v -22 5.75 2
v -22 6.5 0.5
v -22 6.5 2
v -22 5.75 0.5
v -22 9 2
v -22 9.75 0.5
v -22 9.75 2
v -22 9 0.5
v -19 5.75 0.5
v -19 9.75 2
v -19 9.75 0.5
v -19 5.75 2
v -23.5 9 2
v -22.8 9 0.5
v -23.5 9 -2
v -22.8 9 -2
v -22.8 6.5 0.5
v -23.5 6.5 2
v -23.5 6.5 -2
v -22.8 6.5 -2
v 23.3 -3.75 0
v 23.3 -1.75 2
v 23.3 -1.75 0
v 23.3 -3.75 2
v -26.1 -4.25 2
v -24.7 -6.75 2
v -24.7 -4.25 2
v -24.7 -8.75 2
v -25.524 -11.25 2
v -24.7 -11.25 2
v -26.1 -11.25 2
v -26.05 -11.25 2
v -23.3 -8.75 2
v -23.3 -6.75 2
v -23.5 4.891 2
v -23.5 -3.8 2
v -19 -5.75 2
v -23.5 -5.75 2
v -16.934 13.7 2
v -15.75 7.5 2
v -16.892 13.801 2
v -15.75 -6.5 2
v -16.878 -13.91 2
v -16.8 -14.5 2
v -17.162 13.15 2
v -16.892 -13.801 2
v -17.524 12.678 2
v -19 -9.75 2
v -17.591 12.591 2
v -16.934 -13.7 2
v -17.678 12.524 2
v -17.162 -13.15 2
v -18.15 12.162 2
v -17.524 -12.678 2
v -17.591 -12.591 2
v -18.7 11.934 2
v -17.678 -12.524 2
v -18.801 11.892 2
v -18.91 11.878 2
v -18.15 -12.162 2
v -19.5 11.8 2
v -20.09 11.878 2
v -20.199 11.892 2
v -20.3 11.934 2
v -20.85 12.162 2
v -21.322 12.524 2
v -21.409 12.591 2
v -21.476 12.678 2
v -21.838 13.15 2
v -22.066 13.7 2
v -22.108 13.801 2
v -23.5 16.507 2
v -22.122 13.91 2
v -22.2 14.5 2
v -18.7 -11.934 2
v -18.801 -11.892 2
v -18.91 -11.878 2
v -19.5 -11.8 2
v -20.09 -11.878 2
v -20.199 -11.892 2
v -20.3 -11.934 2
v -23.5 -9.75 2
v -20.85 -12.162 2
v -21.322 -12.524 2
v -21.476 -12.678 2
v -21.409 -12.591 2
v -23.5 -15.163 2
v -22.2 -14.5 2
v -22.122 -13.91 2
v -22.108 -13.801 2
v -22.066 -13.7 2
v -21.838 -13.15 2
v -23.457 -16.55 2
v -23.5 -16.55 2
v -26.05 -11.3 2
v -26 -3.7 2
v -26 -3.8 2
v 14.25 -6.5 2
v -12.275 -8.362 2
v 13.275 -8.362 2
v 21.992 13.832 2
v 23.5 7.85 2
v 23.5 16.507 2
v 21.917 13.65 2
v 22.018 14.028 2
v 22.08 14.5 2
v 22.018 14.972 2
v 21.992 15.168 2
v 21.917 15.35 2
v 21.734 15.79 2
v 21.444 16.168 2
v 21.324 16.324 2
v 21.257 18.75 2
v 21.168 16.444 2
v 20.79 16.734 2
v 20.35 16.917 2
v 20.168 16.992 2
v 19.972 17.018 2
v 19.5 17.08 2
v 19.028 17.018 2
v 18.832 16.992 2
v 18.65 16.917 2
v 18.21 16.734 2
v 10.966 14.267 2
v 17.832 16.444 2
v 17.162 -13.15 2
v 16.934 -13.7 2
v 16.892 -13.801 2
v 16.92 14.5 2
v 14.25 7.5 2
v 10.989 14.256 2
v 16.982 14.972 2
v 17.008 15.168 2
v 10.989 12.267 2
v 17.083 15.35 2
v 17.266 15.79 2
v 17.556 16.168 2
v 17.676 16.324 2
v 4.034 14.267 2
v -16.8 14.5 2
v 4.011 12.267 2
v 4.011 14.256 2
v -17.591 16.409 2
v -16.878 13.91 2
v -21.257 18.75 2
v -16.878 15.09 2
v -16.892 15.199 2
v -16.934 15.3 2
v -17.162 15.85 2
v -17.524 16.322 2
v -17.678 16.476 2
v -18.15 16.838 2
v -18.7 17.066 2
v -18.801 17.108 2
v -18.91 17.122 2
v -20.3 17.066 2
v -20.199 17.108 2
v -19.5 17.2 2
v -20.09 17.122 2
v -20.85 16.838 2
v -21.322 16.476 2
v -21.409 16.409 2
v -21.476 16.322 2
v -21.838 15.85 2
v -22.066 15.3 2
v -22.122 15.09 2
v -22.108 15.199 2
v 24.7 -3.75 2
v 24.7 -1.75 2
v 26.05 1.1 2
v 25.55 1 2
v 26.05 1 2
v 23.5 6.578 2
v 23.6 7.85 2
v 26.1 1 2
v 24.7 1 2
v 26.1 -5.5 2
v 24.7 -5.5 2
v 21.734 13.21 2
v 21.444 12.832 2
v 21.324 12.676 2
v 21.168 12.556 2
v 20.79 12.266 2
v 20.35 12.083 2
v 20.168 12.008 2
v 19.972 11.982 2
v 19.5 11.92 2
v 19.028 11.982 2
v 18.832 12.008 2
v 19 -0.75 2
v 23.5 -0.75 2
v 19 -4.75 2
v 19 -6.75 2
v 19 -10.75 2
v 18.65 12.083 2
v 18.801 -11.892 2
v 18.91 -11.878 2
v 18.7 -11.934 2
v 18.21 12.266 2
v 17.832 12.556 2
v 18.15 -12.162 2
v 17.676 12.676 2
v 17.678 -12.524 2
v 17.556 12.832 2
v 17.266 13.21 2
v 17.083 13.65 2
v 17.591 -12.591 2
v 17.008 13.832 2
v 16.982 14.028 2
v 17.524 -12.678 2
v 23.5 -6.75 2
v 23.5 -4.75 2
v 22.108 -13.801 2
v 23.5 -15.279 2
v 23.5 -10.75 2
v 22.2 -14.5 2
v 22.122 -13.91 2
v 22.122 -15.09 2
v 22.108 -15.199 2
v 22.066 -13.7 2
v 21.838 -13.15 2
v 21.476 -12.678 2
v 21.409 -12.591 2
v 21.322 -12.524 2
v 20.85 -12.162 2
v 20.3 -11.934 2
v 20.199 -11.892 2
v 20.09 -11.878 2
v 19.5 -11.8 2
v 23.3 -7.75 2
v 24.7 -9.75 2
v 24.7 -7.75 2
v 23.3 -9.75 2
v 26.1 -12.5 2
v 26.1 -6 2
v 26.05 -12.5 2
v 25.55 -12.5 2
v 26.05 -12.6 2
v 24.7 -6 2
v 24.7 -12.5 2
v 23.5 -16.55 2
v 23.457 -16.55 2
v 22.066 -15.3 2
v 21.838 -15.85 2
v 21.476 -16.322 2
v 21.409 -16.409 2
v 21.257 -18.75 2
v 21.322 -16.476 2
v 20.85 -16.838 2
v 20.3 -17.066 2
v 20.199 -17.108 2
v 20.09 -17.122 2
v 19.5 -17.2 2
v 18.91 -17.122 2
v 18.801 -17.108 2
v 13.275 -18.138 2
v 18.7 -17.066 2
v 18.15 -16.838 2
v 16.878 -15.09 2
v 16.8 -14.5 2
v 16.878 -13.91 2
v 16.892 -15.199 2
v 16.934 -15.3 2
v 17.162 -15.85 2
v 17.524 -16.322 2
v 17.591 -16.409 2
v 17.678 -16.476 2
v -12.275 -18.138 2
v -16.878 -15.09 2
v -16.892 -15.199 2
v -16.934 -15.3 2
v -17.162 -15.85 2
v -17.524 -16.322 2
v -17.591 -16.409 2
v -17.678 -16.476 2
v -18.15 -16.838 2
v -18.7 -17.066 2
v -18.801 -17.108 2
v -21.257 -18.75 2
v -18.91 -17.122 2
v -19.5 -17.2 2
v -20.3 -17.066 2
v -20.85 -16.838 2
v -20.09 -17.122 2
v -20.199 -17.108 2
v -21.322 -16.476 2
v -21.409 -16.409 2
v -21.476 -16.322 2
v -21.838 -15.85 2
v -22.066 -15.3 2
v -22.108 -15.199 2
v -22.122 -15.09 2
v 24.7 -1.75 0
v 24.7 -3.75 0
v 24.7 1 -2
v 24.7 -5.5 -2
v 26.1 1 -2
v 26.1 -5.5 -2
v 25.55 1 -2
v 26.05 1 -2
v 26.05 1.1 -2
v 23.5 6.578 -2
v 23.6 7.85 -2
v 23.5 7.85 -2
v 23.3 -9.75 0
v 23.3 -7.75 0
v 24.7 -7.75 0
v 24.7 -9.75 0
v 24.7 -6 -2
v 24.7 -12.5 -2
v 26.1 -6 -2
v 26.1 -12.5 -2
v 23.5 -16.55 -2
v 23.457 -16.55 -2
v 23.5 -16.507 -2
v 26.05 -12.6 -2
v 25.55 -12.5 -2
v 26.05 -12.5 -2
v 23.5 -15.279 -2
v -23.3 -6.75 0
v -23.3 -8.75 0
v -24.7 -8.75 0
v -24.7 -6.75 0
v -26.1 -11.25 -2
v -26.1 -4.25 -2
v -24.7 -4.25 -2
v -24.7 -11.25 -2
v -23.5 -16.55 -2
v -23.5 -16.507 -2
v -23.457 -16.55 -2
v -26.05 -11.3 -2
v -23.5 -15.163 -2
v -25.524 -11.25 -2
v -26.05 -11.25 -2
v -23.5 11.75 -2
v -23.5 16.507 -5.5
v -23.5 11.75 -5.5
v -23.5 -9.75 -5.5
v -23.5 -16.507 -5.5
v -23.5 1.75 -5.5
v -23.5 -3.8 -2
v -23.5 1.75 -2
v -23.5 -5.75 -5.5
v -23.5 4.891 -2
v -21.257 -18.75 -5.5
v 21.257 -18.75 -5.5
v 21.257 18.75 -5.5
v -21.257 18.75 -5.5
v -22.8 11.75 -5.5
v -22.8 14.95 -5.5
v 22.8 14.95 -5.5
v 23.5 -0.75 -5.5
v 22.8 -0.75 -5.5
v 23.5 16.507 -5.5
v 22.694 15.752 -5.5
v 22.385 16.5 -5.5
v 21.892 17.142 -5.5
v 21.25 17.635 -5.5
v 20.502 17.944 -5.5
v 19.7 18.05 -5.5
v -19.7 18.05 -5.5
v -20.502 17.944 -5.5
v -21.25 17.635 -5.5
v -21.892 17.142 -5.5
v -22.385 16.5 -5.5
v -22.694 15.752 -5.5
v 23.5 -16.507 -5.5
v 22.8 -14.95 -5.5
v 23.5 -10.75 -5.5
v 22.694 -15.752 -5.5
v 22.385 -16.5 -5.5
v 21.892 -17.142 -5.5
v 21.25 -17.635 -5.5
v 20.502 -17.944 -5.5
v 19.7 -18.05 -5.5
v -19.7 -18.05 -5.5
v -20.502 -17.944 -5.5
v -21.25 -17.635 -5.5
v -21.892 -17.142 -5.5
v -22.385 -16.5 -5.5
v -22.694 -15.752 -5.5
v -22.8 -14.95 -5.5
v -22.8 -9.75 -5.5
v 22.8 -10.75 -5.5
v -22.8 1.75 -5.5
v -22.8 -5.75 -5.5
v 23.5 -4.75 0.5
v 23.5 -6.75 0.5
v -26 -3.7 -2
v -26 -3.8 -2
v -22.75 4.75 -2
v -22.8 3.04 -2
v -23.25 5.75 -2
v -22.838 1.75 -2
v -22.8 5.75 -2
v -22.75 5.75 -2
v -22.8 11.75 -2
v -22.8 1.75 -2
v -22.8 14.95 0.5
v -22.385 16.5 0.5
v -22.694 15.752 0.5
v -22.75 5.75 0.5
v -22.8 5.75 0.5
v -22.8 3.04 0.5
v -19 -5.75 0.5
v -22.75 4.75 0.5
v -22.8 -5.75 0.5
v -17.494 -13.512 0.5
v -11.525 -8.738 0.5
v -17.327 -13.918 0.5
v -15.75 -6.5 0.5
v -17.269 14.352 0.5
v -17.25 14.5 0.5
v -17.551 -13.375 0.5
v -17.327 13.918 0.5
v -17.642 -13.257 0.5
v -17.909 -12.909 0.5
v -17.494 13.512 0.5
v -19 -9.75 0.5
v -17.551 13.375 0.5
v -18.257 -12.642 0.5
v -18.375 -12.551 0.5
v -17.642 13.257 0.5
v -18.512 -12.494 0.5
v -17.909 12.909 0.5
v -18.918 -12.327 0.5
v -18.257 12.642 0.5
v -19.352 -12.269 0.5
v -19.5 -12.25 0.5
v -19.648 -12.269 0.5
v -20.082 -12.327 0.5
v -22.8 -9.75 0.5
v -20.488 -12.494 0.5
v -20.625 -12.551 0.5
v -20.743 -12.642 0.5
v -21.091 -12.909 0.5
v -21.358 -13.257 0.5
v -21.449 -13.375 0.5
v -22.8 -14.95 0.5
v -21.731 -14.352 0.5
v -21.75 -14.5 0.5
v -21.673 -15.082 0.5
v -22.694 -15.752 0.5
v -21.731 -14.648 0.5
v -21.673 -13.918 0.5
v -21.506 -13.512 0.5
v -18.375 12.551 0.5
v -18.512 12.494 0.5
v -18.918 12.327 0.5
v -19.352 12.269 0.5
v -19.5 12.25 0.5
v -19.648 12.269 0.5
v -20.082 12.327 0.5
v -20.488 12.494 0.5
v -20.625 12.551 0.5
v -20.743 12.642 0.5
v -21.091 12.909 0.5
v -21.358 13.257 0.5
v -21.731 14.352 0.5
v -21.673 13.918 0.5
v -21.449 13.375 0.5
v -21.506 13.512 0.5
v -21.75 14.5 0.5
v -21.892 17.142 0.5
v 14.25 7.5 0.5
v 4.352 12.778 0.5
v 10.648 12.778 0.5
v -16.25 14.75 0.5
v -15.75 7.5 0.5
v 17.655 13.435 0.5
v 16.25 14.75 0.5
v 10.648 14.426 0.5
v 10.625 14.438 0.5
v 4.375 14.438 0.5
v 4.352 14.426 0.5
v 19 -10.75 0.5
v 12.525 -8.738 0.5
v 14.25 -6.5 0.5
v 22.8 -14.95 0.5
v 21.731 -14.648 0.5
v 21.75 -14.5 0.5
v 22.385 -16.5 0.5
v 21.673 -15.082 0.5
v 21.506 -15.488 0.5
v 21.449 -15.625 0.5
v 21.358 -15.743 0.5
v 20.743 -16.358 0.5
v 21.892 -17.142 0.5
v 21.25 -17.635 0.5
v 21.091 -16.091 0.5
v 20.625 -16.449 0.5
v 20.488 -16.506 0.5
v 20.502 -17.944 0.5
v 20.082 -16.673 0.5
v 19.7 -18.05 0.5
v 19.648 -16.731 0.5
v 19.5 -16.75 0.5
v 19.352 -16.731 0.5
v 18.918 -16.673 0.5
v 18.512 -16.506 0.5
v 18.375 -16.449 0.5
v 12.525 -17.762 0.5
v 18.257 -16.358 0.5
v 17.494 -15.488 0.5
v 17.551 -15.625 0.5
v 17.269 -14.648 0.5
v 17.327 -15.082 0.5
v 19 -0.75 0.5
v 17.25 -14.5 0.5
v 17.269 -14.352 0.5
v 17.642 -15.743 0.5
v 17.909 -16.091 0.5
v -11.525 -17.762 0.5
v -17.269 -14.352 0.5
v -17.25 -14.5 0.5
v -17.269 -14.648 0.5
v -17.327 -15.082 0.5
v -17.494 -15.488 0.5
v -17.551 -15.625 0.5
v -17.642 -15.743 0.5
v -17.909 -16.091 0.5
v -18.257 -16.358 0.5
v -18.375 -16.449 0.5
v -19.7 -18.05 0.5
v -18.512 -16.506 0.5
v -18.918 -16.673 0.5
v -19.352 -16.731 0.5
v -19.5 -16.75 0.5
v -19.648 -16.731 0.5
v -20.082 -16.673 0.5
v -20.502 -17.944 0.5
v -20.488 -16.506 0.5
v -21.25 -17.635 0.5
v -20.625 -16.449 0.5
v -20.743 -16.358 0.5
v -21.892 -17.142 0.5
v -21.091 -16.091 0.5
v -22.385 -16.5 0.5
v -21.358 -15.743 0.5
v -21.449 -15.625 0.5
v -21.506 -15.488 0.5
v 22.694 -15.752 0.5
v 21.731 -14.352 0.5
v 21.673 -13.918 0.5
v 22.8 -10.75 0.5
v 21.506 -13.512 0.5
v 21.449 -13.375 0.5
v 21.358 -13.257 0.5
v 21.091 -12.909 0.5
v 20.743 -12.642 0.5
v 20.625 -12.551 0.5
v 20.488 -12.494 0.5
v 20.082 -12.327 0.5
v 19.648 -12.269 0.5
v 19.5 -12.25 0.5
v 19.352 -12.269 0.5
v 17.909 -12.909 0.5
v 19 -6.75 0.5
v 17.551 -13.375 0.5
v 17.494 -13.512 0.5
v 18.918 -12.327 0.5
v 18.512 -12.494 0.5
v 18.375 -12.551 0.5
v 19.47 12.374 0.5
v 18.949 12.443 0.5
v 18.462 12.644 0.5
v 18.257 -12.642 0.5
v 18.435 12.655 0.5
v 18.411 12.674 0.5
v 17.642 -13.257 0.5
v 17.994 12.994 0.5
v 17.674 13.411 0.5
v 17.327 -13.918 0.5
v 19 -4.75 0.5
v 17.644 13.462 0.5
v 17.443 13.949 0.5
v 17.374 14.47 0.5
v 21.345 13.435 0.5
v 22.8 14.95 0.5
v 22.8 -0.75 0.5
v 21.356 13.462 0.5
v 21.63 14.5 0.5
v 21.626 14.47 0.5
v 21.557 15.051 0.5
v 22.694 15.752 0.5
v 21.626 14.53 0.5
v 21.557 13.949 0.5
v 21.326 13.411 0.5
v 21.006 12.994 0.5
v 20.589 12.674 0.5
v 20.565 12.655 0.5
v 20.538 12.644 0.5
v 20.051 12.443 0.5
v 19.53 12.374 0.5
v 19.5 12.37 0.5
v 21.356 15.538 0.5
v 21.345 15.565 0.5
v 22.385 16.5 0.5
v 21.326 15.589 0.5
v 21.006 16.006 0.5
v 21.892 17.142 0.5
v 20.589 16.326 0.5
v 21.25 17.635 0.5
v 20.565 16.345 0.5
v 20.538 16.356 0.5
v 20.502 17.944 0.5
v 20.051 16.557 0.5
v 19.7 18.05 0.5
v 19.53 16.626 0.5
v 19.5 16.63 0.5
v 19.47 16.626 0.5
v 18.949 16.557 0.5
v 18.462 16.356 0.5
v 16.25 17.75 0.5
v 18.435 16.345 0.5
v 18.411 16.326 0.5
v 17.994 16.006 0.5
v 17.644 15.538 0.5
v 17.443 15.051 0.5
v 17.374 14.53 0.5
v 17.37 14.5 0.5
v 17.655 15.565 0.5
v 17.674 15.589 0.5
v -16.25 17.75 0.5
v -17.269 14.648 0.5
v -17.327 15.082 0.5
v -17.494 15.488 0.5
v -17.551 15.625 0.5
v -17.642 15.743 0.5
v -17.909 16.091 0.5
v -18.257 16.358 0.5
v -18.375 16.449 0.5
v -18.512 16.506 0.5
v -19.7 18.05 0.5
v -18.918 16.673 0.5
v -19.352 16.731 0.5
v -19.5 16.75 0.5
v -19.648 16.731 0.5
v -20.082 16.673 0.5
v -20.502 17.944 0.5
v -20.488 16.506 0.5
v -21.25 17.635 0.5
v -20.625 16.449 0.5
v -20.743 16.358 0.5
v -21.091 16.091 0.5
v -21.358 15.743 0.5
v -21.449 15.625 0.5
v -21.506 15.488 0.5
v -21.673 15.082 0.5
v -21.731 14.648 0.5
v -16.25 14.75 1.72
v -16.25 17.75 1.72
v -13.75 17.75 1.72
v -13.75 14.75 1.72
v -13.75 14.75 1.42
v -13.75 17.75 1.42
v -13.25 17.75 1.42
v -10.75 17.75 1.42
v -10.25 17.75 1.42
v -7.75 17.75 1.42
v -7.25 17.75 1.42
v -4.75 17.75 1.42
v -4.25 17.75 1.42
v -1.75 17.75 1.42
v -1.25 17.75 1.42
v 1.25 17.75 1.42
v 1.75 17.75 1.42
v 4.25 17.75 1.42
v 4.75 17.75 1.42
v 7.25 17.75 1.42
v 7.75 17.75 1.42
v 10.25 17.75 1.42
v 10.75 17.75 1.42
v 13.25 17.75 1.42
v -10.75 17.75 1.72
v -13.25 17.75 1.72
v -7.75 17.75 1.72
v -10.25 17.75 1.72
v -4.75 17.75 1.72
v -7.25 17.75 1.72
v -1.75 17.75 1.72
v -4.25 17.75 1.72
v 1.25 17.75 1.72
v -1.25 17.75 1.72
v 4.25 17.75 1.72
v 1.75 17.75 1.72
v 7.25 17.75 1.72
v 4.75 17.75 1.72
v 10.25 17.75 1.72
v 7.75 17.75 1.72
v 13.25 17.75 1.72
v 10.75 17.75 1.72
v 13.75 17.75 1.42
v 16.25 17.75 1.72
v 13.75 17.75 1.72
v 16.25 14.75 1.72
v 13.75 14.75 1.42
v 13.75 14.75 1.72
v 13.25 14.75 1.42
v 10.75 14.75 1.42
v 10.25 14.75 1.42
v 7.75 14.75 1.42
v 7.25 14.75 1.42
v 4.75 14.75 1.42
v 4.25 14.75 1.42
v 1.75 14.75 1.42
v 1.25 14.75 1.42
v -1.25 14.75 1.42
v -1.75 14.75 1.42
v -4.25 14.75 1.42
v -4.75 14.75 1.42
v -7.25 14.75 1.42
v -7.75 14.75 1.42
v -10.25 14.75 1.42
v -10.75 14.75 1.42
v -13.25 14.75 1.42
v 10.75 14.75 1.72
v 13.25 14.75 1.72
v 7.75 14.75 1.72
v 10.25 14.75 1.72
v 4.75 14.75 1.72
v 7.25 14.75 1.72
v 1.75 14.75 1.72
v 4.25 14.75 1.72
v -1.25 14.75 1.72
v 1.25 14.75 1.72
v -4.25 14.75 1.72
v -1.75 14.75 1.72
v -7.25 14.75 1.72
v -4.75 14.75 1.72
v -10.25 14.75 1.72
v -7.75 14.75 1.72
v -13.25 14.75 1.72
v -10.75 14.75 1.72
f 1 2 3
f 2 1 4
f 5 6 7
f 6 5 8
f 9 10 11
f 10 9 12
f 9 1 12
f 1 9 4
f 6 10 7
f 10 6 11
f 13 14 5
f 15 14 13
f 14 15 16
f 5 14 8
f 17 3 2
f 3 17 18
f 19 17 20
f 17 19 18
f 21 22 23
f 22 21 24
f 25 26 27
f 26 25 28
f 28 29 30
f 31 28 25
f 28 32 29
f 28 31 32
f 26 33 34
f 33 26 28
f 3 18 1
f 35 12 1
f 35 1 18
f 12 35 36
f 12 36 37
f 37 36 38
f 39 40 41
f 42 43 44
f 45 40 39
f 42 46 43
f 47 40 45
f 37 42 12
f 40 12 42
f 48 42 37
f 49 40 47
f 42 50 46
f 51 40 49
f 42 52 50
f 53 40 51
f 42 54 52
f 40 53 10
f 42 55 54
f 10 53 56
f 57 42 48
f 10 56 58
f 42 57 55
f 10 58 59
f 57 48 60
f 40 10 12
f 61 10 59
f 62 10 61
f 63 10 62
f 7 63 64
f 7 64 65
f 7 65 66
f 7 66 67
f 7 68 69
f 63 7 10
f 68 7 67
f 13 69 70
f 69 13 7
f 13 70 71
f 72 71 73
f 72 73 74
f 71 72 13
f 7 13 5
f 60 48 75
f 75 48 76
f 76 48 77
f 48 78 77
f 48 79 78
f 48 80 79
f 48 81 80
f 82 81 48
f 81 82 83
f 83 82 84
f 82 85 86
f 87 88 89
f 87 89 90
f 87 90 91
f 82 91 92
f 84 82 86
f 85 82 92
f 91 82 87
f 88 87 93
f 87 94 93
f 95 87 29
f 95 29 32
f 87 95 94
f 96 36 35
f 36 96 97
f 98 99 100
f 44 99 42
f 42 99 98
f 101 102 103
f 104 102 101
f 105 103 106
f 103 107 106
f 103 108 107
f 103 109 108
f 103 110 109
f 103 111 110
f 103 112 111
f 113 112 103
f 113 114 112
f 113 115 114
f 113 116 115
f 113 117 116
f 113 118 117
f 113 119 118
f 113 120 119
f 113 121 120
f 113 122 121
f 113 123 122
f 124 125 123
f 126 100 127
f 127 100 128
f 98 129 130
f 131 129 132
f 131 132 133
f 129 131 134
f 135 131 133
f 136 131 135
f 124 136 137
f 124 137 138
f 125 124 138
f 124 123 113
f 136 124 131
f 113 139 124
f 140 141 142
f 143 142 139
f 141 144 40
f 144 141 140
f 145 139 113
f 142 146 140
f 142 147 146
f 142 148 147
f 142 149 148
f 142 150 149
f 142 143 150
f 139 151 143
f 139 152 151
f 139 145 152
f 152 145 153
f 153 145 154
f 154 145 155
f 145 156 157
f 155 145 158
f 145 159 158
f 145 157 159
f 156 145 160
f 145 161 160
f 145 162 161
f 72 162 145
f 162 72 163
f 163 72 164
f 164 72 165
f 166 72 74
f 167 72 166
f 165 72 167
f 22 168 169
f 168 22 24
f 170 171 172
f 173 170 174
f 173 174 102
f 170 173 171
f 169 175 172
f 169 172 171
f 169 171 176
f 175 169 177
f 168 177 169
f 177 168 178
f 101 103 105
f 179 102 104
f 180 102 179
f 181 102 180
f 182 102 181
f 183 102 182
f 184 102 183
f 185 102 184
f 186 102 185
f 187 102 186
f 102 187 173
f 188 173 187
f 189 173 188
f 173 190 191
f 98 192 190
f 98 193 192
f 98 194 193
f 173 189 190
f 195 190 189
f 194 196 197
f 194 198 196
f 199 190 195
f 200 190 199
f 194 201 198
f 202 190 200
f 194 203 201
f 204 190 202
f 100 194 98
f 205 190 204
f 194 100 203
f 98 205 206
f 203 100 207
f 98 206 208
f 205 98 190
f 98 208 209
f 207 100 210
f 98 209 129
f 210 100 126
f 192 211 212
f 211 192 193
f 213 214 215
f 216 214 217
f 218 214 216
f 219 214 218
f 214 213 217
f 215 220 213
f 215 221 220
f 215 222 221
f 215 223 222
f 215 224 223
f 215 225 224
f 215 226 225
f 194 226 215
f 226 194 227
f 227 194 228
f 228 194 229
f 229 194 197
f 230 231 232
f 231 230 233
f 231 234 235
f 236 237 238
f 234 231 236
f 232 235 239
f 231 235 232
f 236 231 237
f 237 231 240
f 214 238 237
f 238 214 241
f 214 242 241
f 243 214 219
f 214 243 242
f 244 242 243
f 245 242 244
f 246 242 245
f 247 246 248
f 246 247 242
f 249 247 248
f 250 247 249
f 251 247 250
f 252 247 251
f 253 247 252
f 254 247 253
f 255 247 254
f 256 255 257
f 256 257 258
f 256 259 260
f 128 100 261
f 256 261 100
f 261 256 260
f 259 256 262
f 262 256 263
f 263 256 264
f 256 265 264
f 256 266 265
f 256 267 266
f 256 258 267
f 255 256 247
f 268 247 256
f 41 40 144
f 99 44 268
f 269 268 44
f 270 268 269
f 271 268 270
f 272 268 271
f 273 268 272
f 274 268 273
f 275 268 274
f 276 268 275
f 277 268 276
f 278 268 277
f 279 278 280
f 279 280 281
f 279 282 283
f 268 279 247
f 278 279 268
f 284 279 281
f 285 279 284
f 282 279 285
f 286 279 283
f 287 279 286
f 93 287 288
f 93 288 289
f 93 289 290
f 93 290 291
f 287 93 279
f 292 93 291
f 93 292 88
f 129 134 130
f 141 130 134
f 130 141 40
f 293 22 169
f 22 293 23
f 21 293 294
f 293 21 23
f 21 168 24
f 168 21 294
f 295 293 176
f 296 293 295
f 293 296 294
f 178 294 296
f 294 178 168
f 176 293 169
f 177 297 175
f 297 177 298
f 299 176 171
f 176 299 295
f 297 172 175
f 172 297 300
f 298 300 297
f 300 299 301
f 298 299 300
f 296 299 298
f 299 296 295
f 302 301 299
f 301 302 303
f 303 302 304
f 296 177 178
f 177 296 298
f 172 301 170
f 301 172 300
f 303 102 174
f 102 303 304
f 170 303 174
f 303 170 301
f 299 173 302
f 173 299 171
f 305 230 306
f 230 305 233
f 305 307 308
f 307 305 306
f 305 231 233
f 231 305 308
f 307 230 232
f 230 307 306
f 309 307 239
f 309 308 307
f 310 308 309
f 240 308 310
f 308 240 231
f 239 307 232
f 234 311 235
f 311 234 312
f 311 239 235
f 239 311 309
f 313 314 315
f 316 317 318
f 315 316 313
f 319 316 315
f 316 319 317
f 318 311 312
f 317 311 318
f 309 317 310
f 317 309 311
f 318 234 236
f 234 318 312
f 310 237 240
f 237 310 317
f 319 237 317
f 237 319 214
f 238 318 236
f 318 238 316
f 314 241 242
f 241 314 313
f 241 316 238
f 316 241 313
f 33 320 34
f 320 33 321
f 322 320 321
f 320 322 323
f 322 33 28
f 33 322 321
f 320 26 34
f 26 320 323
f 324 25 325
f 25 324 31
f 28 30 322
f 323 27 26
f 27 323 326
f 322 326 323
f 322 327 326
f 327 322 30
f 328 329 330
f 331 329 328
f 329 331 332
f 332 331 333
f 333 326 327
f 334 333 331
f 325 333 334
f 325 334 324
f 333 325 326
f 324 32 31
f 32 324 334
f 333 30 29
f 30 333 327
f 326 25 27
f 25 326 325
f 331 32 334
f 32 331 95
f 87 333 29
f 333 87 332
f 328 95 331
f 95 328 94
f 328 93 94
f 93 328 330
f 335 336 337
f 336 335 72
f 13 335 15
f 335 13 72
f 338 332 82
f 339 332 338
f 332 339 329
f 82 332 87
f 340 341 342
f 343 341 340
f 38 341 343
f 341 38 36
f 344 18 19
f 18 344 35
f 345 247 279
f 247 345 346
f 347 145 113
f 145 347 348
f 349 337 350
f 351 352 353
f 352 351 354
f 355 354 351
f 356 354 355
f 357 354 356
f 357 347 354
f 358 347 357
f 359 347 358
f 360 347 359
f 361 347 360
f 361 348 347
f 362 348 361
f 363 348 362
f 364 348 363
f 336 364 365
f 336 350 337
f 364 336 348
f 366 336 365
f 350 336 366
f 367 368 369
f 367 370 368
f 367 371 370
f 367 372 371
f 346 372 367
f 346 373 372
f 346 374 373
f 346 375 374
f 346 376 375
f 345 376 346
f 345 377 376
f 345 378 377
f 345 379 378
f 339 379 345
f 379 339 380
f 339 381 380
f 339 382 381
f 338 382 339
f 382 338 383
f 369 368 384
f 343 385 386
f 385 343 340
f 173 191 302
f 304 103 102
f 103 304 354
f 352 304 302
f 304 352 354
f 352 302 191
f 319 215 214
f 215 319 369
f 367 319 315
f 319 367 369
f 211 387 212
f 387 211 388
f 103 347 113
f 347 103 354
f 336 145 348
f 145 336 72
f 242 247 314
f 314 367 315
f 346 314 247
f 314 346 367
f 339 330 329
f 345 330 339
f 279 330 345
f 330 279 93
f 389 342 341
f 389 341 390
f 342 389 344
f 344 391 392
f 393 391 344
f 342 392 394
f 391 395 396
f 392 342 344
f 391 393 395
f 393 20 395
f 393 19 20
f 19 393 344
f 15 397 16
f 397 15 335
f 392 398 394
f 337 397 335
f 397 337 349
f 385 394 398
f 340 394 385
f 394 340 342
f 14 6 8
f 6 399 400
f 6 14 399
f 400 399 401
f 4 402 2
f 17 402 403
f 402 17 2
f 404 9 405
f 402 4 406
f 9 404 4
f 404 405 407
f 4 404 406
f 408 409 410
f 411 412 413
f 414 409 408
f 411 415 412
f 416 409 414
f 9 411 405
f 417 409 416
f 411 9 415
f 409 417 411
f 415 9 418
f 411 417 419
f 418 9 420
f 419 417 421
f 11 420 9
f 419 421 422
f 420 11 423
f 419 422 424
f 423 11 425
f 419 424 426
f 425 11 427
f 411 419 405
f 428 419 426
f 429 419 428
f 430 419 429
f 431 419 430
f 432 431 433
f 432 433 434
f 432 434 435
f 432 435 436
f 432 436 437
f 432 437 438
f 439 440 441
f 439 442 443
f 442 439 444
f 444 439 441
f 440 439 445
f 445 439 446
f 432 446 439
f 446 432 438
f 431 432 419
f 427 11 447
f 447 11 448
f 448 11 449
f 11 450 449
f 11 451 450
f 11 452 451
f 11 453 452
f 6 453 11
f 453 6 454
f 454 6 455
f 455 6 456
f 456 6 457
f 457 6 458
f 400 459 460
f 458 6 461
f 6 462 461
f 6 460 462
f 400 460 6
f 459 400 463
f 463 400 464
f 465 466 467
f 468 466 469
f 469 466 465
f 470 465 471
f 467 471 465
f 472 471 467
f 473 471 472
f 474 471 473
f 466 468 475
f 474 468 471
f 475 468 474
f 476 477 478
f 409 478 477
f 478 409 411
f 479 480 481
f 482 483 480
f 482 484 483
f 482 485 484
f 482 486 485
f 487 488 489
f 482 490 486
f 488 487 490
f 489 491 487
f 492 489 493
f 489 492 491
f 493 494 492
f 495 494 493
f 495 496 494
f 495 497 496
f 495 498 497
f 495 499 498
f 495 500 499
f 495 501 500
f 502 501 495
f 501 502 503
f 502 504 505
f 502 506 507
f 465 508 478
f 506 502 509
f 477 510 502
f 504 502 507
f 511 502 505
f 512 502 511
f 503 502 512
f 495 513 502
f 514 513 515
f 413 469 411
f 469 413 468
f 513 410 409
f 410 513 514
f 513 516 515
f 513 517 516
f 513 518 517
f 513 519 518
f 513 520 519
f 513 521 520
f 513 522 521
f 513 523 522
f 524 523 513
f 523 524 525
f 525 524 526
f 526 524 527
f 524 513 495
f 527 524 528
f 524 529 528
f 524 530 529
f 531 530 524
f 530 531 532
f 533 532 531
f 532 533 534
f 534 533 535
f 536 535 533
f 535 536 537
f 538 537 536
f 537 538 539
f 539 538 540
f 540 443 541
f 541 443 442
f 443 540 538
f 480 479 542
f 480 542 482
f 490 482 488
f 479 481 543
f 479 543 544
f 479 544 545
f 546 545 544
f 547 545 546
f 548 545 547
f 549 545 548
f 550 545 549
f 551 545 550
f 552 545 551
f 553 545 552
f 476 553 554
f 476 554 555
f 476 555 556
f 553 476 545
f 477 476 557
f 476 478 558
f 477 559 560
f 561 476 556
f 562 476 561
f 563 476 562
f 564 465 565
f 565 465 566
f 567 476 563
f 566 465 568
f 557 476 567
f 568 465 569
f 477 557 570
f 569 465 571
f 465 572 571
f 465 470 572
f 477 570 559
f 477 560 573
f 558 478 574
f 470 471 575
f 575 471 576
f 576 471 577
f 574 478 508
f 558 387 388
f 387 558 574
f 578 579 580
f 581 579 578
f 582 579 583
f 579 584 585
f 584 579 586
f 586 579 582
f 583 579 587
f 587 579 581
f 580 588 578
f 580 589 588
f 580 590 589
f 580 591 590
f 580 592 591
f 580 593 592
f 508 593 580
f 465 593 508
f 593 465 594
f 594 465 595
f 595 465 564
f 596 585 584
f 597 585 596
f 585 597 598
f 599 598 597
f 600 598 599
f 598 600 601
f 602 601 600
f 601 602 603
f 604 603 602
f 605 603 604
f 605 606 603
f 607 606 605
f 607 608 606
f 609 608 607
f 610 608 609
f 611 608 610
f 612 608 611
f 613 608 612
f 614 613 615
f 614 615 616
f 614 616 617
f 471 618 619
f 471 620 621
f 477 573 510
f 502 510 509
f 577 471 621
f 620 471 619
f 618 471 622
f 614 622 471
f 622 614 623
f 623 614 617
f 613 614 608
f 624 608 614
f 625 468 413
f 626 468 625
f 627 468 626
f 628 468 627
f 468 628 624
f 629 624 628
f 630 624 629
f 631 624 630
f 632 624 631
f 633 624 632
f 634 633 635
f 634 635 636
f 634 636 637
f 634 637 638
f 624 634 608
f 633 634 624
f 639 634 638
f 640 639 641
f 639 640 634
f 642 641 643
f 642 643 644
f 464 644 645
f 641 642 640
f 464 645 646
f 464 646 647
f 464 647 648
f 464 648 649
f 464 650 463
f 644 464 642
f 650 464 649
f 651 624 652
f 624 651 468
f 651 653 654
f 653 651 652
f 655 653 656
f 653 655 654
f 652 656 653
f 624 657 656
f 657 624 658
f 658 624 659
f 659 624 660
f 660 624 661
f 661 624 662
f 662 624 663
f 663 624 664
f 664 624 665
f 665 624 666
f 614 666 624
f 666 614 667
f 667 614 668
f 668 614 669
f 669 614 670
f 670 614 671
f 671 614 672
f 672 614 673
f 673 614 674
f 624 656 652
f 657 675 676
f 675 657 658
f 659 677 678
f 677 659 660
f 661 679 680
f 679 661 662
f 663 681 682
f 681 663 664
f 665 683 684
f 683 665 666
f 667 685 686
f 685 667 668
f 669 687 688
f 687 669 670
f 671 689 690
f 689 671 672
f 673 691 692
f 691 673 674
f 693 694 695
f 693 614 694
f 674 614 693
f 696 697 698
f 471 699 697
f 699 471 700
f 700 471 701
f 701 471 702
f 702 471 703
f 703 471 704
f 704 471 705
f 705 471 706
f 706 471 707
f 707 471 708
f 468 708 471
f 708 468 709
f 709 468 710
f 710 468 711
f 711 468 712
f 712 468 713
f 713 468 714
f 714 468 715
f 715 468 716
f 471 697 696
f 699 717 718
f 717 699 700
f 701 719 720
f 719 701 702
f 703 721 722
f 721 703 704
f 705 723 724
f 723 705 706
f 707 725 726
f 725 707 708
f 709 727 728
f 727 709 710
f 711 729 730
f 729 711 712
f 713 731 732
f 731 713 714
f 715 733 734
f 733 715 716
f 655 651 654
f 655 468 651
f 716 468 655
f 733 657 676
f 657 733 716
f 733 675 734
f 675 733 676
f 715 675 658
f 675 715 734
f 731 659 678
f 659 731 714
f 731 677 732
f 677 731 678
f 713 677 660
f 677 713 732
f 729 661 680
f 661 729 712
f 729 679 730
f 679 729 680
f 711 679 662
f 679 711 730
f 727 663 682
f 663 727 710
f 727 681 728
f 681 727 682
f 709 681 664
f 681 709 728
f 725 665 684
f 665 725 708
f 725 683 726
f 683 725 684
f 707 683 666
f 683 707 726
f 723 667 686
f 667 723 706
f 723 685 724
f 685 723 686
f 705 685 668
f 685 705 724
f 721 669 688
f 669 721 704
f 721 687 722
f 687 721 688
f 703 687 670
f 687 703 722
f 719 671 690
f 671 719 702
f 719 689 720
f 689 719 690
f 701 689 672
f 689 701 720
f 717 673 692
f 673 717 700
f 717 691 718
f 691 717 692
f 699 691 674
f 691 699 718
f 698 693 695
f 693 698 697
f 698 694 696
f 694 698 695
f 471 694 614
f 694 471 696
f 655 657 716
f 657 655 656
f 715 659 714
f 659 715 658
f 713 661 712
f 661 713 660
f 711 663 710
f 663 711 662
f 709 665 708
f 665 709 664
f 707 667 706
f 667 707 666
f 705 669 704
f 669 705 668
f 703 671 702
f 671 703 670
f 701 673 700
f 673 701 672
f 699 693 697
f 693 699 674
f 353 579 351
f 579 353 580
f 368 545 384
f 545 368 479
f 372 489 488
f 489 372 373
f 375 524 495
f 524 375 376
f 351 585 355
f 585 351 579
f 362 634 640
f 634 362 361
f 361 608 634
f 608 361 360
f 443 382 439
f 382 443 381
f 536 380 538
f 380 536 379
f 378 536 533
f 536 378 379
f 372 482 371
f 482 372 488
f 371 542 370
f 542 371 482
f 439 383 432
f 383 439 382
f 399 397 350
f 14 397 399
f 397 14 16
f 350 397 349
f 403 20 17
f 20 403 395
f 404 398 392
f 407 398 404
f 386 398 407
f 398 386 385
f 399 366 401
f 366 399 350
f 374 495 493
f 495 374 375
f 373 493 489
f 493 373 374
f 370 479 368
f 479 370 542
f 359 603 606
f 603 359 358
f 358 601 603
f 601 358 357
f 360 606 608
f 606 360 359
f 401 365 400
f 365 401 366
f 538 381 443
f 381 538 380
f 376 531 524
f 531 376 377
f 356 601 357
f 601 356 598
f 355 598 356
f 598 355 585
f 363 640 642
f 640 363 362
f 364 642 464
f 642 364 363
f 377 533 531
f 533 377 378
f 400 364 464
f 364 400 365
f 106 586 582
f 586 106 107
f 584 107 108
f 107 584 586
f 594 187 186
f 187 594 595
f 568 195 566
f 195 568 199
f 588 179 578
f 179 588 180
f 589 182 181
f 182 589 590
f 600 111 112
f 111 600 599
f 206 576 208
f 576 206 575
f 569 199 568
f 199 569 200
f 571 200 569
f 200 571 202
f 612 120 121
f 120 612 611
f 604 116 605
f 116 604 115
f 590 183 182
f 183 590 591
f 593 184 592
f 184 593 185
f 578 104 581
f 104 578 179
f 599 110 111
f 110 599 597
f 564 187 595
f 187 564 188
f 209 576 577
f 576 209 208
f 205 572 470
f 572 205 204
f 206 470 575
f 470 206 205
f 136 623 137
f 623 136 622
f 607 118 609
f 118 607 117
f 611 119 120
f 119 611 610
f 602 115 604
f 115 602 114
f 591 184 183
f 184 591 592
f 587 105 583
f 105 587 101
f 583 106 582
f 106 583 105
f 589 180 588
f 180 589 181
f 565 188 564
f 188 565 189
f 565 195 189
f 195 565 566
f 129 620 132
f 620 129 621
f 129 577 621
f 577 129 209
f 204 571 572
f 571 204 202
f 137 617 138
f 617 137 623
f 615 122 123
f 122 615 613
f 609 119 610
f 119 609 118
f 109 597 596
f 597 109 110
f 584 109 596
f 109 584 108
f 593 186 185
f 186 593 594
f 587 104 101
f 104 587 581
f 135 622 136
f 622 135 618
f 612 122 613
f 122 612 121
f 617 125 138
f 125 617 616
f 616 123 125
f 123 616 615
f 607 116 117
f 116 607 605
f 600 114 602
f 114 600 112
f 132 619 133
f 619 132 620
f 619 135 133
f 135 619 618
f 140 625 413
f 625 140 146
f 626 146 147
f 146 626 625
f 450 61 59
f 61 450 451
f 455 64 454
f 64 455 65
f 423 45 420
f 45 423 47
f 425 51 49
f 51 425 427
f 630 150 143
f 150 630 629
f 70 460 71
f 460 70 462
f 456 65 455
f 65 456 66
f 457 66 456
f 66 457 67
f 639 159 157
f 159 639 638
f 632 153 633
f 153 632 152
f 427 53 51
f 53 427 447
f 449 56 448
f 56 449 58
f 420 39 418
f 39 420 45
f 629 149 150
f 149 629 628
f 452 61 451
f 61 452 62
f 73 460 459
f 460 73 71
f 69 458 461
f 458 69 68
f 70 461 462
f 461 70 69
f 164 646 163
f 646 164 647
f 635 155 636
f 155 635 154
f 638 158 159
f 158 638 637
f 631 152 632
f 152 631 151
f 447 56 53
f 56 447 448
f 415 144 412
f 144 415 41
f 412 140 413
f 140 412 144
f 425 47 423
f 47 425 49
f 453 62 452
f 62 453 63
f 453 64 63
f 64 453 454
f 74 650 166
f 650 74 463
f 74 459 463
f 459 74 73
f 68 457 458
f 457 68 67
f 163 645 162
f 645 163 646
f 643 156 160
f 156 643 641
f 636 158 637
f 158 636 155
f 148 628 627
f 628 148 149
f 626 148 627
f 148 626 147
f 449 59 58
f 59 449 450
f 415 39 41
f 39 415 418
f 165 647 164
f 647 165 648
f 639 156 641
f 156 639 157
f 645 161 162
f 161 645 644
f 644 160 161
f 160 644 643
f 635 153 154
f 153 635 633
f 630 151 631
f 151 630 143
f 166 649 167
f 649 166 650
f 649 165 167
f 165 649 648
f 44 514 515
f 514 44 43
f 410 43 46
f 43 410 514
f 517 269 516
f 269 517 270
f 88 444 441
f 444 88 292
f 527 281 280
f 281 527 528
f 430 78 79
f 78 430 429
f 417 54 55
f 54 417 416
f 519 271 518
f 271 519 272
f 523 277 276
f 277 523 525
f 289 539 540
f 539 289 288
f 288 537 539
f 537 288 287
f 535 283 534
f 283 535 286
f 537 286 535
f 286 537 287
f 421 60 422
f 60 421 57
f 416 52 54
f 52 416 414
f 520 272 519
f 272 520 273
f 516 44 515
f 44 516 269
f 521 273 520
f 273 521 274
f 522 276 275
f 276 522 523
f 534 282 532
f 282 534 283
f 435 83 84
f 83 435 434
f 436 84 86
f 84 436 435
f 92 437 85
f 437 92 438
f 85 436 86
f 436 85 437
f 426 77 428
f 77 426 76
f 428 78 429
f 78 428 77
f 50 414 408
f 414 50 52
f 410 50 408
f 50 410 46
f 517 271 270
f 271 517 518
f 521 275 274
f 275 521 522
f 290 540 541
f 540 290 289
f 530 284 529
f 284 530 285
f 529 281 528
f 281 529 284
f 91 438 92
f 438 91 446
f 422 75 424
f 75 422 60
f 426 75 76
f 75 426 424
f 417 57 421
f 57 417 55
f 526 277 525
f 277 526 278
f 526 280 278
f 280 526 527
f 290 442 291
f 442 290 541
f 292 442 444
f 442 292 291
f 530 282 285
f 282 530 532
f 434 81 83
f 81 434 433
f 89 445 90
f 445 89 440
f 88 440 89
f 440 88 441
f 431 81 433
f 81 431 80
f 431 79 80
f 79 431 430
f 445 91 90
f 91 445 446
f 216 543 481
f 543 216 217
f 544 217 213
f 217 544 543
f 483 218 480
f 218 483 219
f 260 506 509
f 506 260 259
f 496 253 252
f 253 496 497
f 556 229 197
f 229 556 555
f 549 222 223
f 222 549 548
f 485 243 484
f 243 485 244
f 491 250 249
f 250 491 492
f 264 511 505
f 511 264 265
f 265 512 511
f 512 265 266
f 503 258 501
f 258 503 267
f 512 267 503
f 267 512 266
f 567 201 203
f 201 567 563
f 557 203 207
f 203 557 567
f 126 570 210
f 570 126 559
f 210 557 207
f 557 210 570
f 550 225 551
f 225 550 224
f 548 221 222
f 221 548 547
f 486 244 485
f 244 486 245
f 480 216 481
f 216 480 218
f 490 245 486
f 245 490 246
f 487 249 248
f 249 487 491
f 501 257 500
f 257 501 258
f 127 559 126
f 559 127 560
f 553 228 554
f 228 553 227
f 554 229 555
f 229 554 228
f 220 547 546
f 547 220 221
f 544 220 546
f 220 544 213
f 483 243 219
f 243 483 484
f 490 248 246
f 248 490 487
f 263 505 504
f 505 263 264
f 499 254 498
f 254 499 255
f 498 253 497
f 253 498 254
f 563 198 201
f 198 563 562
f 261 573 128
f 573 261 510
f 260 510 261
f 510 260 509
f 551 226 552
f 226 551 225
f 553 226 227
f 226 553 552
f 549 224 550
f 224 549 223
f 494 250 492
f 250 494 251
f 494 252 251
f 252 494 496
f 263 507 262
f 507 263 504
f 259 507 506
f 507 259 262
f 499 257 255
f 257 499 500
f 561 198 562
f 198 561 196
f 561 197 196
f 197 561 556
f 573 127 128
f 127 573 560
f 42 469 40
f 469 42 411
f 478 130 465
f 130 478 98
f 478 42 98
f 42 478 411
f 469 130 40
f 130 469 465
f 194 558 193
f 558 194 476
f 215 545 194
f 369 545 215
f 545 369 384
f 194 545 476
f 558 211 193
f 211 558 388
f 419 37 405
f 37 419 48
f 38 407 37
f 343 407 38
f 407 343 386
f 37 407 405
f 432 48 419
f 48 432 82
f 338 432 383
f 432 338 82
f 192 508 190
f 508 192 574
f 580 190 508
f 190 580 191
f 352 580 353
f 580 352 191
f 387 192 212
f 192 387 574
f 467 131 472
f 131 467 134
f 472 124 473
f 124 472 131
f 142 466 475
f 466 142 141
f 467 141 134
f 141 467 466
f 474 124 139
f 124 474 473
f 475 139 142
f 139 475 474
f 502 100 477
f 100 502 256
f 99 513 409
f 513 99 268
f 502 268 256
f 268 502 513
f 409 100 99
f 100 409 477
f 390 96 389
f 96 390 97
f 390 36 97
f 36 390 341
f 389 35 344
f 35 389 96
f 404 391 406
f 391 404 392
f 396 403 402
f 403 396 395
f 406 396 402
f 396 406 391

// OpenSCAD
/*
          
          A simple cover for CARD10-badge:
          ================================
        * reduces surface complexity and covers space in between PCB's in order to keep dirt out
        * left/right/select buttons become much more usable as they get a bigger surface
        * on-off button is left as it is in order to avoid accidental pushing
        * diffuses light from the LED's which are mounted on top
        * the cover can be clipped onto the badge - there are no tools required to change the cover
        * the model has no overhangs, thus it is very easy to print
        
          Printing instructions:
          ======================
        * print upside down!
        * adjust value for "ledDiffusionThickness" so that the LED diffusor is only one layer high
        * adjust the value for "extra" in order to achieve a tight fit around the Harmonic board
        * I printed mine with .05mm layer height out of white PLA on an Ultimaker 2 with 0.4mm extruder
  
        --------------------------------------------------------------------------------
          "THE TSCHUNK-WARE LICENSE" (Revision 23):
          Niklas Roy wrote this file. As long as you retain this notice you
          can do whatever you want with this stuff. If we meet some day, and you think
          this stuff is worth it, you can buy me a tschunk in return
        --------------------------------------------------------------------------------
   
*/

ledDiffusionThickness=.28;  // thickness of diffusion layer for leds
extra=.3;                  // extra space around board for manufacturing imperfections

corner=3.1;                 // corner radius
width=45;                   // width of harmonic board
height=35.5;                // height of harmonic board
depth=1;                    // thickness of board
screwHead=4.2;              // diameter of screws

union(){
    difference(){
        // outer shell
        difference(){
            hull(){ // main body
                translate([0,0,1]){
                    cube([width+2,height+2,2],center=true);
                }
                translate([0,0,-4.5]){
                    cube([width+2,height+2,2],center=true);
                }
            }
            // chopped off corners
            translate([width/2+2,height/2+2,1]){
                rotate([0,0,45]){
                    cube([6,10,15],center=true);
                }
            }
            translate([-width/2-2,height/2+2,1]){
                rotate([0,0,-45]){
                    cube([6,10,15],center=true);
                }
            }
            translate([width/2+2,-height/2-2,1]){
                rotate([0,0,-45]){
                    cube([6,10,15],center=true);
                }
            }
            translate([-width/2-2,-height/2-2,1]){
                rotate([0,0,45]){
                    cube([6,10,15],center=true);
                }
            }
            //usb-c cutout
            translate([-15,height/2-11,-5]){
                    cube([20,10,6],center=true);
            }
            
            //cutout between right and select button
            translate([15,-5,-3]){
                    cube([20,8,7],center=true);
            }
            
        }
        union(){
            // harmonic board basic shape
            hull(){
                translate([width/2-corner+extra,height/2-corner+extra,0]){
                    cylinder($fn=24,r=corner,h=depth,center=true); 
                }
                translate([-width/2+corner-extra,height/2-corner+extra,0]){
                    cylinder($fn=24,r=corner,h=depth,center=true); 
                }
                translate([-width/2+corner-extra,-height/2+corner-extra,0]){
                    cylinder($fn=24,r=corner,h=depth,center=true); 
                }
                translate([width/2-corner+extra,-height/2+corner-extra,0]){
                    cylinder($fn=24,r=corner,h=depth,center=true); 
                }
                translate([0,0,-10]){ // lowered copy of the board
                    translate([width/2-corner+extra,height/2-corner+extra,0]){
                        cylinder($fn=24,r=corner,h=depth,center=true); 
                    }
                    translate([-width/2+corner-extra,height/2-corner+extra,0]){
                        cylinder($fn=24,r=corner,h=depth,center=true); 
                    }
                    translate([-width/2+corner-extra,-height/2+corner-extra,0]){
                        cylinder($fn=24,r=corner,h=depth,center=true); 
                    }
                    translate([width/2-corner+extra,-height/2+corner-extra,0]){
                        cylinder($fn=24,r=corner,h=depth,center=true); 
                    }
                }
            }
            // screws
            translate([width/2-3,height/2-3.25,0.4]){
                cylinder($fn=24,d1=screwHead,d2=screwHead+1.5,h=2.5,center=false); 
            }
            translate([-width/2+3,height/2-3.25,0]){
                cylinder($fn=24,d1=screwHead,d2=screwHead+1.5,h=2.5,center=false); 
            }
            translate([-width/2+3,-height/2+3.25,0]){
                cylinder($fn=24,d1=screwHead,d2=screwHead+1.5,h=2.5,center=false); 
            }
            translate([width/2-3,-height/2+3.25,0]){
                cylinder($fn=24,d1=screwHead,d2=screwHead+1.5,h=2.5,center=false); 
            }

            // leds
            translate([0,height/2-1.5,1.2-ledDiffusionThickness]){
                cube([32,3,1],center=true);
                for(led = [-15 : 3 : 15]){
                    translate([led,0,0]){
                        cube([2.5,3,1.6],center=true);
                    }
                }
                
            }

            // display
            translate([-0.75,.5,1.5]){
                cube([30,14,3],center=true);
            }

            // buttons
            translate([-width/2+2,height/2-10,1.5]){
                cube([3,4,16],center=true);//on-off
                translate([-2,0,0]){
                    cube([4,2.5,16],center=true);//
                }
            }
            translate([width/2-1,-height/2+9,1.5]){
                cube([5,4,16],center=true);//right
            }
            translate([-width/2+1,-height/2+10,1.5]){
                cube([5,4,16],center=true);//left
            }
            translate([width/2-1,-height/2+15,1.5]){
                cube([5,4,16],center=true);//select
            }

            //ir
            hull(){
                translate([width/2-15,height/2-4,-0.1]){
                    cube([6,1.5,0.1],center=true);//select
                }
                translate([width/2-15,height/2-4.5,2.1]){
                    cube([7,2,0.1],center=true);//select
                }
            }
            //ecg
            hull()
            {
                translate([0.5,-height/2+4.5,2.5]){
                    cube([26,10,.1],center=true);//select
                }
                translate([0.5,-height/2+4.5,.5]){
                    cube([24,9,.1],center=true);//select
                }
            }
        }
    }

    // button cover

    translate([width/2+2,-height/2+15,1]){
        cube([2.4,2,2],center=true);          //select
        translate([0.9,.5,-1]){
            cube([1.4,6.5,4],center=true);
        }
        hull(){                               // spring
            translate([1.3,3.8,-1]){
                cube([.5,.1,4],center=true);
            }
            translate([-1,10.1,-1]){
                cube([.2,1,4],center=true);
            }
        }
    }

    translate([width/2+2,-height/2+9,1]){
        cube([2.4,2,2],center=true);          //right
        translate([0.9,-.5,-1]){
            cube([1.4,6.5,4],center=true);
        }
        hull(){                               // spring
            translate([1.3,-3.8,-1]){
                cube([.5,.1,4],center=true);
            }
            translate([-1.1,-7.3,-1]){
                cube([.2,1,4],center=true);
            }
        }
    }

    translate([-width/2-2,-height/2+10,1]){
        cube([2.4,2,2],center=true);          //left
        translate([-0.9,0,-1]){
            cube([1.4,7,4],center=true);
        }
        hull(){                               // spring
            translate([-1.3,-3.5,-1]){
                cube([.5,.1,4],center=true);
            }
            translate([1.1,-8.3,-1]){
                cube([.2,1,4],center=true);
            }
        }
    }





    translate([-width/2-2,height/2-24,1]){ // triangle above left button
        hull(){
            translate([0,2.5,-1]){
                cube([3,.1,4],center=true);
            }
            translate([1.5,11.5,-1]){
                cube([.5,1,4],center=true);
            }
        }
    }
}
